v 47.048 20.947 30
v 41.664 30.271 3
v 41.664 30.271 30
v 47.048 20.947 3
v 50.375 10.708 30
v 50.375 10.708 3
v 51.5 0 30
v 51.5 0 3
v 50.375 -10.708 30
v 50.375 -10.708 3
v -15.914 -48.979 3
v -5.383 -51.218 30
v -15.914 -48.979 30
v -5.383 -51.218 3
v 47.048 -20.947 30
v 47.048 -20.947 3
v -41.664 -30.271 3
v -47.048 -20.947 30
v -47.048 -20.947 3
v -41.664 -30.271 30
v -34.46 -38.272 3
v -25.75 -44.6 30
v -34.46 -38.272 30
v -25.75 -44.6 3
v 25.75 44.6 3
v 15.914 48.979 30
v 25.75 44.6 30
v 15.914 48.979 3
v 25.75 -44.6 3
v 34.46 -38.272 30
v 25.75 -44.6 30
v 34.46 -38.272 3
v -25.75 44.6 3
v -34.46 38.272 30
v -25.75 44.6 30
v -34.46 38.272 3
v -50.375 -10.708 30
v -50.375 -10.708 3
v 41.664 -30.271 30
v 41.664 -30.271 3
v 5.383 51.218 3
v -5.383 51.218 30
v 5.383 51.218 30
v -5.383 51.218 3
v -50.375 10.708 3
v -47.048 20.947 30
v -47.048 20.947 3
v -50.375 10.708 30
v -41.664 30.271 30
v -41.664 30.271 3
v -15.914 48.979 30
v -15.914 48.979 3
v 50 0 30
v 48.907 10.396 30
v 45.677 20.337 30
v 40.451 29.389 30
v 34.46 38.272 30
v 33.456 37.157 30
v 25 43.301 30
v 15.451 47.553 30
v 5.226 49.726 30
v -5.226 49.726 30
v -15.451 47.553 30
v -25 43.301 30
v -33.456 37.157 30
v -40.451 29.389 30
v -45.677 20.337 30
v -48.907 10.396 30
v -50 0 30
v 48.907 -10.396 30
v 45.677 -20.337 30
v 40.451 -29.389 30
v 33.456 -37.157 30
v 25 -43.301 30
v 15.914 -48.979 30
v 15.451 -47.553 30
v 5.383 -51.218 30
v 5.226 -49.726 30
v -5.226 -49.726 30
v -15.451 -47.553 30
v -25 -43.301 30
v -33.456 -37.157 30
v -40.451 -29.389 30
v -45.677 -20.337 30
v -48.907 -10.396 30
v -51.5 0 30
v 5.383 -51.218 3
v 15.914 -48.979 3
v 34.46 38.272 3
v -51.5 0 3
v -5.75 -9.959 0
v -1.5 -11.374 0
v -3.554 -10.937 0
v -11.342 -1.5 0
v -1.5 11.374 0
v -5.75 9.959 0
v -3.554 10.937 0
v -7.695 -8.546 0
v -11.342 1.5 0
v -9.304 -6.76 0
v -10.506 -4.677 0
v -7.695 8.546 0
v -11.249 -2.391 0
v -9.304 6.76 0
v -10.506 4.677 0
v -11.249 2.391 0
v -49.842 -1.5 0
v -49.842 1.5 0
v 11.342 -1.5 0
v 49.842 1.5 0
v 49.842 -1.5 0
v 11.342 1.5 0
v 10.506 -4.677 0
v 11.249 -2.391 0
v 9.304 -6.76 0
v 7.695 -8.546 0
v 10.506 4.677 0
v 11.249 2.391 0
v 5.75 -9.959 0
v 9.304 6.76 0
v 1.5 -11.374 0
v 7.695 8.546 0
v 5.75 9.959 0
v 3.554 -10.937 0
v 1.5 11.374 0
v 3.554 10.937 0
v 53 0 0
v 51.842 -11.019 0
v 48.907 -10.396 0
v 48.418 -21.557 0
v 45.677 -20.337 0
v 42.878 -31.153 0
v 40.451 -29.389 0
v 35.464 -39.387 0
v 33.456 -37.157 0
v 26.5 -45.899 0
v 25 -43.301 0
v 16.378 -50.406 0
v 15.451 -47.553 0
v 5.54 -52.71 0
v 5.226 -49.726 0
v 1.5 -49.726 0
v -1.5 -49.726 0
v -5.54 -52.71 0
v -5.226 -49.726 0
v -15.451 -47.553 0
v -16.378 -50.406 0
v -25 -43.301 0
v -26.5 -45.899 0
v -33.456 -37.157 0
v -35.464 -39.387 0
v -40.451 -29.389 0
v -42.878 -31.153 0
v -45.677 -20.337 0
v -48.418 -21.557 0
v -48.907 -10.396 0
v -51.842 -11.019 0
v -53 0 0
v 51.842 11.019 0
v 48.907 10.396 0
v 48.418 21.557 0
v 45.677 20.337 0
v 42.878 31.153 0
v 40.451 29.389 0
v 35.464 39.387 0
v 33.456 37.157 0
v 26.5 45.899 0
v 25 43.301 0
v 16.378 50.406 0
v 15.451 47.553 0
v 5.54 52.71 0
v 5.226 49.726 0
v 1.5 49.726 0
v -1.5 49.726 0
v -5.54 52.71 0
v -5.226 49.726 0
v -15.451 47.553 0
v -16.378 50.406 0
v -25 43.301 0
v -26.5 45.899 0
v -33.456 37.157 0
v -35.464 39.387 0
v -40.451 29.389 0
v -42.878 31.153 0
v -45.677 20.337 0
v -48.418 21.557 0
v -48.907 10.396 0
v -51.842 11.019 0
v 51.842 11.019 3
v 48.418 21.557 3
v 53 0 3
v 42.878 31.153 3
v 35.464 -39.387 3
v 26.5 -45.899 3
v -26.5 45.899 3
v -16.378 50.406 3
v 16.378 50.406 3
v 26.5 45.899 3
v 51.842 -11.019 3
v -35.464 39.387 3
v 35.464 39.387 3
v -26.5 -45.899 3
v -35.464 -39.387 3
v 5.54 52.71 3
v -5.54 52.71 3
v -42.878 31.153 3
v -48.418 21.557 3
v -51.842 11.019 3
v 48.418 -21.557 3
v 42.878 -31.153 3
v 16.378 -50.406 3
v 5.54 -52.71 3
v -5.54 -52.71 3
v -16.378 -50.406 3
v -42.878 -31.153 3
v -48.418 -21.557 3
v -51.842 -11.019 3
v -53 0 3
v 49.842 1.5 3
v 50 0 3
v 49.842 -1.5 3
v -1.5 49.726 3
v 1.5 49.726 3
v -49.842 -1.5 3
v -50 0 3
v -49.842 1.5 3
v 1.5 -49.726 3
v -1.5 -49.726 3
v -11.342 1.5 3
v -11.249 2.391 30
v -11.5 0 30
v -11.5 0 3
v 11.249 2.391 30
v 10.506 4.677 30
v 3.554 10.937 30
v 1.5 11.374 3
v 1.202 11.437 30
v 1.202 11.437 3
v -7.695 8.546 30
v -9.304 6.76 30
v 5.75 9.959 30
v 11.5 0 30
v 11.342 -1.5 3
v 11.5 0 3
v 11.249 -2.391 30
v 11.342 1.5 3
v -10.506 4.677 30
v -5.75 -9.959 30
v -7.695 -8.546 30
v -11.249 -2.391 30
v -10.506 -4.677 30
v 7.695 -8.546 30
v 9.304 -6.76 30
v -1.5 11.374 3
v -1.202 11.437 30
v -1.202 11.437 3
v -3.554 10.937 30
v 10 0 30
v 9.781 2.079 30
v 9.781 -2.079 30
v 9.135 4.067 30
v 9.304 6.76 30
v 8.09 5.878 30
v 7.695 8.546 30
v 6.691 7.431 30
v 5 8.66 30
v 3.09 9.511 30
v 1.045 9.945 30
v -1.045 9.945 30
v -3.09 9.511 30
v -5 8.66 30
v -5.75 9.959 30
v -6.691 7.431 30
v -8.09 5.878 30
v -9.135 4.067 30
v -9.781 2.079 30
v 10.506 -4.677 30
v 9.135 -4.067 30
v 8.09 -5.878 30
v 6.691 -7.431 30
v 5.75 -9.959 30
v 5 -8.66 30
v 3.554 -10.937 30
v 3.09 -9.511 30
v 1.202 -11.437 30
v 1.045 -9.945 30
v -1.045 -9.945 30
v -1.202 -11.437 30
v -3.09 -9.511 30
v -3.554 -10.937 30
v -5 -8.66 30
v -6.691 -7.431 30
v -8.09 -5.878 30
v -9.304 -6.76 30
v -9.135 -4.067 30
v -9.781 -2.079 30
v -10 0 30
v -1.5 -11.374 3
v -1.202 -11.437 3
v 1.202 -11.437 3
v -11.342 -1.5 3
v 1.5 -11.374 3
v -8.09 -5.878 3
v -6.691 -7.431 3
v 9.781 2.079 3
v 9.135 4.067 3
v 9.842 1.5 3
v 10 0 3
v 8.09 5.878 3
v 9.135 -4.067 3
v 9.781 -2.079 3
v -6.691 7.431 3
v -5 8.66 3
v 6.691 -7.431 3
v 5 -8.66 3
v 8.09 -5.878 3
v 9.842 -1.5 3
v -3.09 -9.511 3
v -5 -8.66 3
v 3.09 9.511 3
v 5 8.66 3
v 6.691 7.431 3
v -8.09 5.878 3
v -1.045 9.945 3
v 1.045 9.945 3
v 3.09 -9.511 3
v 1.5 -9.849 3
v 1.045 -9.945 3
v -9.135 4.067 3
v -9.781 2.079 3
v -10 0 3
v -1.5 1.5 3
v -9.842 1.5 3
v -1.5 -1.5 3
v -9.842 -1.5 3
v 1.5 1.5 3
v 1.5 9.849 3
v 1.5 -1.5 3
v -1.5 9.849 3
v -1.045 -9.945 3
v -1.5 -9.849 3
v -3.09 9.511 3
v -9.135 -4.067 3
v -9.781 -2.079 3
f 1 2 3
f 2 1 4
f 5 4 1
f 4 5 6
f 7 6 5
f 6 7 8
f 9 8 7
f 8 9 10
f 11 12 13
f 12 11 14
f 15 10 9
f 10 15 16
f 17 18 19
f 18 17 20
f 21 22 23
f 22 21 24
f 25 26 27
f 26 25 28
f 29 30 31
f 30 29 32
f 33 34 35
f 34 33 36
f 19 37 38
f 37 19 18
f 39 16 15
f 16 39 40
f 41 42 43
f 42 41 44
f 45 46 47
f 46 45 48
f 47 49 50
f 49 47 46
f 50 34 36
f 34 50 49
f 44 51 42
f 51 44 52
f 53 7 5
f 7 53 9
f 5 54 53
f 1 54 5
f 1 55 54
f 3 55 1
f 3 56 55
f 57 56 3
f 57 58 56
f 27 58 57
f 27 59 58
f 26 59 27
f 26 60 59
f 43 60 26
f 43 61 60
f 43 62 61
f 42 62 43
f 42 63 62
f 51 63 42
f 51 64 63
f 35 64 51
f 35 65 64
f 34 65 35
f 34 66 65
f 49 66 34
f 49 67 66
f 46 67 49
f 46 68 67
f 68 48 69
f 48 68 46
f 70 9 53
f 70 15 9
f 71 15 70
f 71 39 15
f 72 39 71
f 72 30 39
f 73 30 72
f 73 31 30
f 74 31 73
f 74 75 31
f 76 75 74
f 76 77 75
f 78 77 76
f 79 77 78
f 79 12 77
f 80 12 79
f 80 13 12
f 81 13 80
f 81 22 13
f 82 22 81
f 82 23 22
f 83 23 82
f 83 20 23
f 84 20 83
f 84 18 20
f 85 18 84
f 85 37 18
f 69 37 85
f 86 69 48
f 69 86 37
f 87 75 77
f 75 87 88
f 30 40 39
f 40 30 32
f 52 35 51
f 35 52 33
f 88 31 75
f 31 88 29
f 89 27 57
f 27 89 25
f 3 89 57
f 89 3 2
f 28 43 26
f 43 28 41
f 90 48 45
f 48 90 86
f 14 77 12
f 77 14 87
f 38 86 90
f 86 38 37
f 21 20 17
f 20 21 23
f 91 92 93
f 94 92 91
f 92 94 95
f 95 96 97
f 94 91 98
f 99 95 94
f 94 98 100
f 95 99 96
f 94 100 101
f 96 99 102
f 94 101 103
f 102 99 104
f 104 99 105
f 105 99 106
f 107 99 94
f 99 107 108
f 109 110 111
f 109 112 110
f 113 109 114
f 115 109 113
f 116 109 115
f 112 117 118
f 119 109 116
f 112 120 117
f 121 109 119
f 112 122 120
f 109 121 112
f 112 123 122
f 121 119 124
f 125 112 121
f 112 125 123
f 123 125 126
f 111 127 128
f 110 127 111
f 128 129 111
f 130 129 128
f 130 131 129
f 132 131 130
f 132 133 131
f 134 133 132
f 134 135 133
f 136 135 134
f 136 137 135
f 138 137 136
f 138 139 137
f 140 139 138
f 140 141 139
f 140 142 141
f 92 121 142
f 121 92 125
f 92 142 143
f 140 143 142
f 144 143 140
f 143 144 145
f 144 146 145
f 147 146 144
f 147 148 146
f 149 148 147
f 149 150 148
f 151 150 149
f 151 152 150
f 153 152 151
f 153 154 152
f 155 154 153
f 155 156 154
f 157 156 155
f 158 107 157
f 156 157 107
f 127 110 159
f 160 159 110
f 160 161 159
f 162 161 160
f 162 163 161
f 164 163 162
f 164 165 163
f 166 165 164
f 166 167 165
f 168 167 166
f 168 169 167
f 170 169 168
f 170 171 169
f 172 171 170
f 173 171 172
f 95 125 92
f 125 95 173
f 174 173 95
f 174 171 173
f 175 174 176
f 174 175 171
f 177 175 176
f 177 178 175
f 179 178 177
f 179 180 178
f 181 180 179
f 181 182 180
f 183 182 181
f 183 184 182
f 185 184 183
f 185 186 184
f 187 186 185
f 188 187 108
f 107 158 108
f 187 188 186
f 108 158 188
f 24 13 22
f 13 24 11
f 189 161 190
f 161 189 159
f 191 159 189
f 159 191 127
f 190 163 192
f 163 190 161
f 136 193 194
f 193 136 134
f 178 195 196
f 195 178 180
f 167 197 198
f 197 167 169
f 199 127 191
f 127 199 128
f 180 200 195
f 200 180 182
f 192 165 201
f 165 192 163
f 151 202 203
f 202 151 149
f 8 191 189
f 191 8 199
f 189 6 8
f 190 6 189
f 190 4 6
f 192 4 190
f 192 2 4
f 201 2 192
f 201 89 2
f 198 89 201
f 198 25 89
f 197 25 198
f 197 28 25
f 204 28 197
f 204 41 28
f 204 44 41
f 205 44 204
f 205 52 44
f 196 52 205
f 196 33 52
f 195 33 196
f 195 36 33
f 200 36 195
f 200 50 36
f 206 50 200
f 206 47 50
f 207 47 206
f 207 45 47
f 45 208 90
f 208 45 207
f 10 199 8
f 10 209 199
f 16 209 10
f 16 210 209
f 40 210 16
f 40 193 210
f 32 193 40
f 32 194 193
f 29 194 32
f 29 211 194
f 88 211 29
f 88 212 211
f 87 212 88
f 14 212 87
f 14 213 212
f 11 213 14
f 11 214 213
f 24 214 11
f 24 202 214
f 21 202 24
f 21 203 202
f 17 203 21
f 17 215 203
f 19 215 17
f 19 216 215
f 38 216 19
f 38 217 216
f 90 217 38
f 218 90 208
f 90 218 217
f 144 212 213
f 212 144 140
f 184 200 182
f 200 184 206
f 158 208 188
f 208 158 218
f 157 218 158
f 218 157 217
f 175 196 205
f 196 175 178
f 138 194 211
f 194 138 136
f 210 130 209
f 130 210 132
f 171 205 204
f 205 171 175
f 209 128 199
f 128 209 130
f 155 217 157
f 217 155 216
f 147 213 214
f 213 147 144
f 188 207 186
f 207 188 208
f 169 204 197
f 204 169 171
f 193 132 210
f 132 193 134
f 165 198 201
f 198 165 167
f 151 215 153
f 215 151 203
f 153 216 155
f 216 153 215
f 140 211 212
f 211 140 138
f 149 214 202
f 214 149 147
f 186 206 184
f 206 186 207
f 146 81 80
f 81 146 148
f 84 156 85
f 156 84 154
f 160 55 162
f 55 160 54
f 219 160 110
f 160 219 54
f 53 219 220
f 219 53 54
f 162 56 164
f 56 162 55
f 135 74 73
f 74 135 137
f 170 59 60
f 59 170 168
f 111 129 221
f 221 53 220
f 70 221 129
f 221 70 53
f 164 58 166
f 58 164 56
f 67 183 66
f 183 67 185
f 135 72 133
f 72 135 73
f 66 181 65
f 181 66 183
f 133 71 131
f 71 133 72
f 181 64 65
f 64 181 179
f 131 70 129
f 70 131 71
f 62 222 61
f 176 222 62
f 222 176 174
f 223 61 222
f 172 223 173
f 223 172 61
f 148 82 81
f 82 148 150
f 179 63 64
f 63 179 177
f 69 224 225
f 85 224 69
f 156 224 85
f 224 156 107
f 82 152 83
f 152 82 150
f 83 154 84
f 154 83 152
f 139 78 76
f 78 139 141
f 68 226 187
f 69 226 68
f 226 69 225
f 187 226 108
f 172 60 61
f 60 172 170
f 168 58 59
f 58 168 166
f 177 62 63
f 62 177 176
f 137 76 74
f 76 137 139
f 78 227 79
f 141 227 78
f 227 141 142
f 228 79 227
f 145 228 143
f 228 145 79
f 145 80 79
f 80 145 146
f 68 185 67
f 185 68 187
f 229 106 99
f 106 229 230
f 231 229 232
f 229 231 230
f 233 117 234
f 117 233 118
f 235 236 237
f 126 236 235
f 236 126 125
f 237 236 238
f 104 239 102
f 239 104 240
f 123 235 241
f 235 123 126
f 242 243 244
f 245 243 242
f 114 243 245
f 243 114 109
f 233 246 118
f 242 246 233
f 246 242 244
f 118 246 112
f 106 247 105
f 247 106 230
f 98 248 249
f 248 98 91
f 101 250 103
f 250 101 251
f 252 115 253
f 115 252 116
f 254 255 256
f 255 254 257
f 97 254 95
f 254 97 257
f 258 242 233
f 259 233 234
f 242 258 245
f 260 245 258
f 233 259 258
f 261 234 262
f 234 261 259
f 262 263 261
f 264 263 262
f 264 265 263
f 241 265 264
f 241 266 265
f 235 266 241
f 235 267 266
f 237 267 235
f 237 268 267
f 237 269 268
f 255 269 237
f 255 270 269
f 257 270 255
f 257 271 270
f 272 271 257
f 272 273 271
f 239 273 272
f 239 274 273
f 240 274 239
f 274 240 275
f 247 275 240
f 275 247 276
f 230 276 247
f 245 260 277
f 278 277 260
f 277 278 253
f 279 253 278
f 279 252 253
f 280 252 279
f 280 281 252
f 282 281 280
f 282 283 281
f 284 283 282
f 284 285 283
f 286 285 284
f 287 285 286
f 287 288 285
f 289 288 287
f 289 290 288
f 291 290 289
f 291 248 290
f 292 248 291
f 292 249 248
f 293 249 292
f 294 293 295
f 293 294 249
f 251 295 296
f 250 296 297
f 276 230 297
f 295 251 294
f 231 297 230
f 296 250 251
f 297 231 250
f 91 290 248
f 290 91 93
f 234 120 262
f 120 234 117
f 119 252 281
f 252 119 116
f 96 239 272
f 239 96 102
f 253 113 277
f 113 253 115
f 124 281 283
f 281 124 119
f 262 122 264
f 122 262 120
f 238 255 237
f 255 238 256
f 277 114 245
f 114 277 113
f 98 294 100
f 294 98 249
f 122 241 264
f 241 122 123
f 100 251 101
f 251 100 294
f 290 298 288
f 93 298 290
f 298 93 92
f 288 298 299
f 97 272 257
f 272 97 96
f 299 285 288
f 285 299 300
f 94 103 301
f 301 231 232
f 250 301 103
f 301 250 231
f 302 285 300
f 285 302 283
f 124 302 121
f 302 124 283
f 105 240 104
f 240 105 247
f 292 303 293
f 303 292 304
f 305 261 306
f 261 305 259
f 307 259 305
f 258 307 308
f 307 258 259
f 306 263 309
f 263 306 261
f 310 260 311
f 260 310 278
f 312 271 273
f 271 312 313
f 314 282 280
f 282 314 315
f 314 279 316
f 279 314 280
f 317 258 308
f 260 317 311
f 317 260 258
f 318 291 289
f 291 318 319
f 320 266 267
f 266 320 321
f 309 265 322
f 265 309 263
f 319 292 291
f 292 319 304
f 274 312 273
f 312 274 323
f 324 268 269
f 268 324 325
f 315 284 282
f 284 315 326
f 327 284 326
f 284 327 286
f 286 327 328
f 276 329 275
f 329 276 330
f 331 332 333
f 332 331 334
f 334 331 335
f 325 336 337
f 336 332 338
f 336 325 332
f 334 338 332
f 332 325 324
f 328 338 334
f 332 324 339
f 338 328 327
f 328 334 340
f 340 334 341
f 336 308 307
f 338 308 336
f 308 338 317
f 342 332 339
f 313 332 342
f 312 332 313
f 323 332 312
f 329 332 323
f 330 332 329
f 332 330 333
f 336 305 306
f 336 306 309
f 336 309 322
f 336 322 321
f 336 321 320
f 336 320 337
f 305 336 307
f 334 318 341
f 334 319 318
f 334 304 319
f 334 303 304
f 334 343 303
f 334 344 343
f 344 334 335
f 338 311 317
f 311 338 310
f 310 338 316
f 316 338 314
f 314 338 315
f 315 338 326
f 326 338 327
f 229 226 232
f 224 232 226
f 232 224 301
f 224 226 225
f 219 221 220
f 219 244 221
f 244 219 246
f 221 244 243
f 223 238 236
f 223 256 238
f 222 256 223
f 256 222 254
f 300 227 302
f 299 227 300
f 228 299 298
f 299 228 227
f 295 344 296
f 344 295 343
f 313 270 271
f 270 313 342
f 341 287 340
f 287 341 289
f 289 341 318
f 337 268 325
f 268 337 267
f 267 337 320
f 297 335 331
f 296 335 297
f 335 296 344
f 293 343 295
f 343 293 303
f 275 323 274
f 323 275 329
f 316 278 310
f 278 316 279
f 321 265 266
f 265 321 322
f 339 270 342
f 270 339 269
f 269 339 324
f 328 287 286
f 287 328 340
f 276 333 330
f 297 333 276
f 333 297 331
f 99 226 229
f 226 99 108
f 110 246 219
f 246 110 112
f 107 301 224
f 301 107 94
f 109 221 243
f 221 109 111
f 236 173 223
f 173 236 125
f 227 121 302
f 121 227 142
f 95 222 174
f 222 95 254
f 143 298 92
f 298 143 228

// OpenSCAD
//dimensions
diameter1  = 100;
diameter2  =  20;
wall       =   3;
height     =  30;

module outer_circle() {
    difference() {
        union() {
            cylinder( d = diameter1+wall, h = height );
            cylinder( d = diameter1+2*wall, h = wall );
        }
        translate( [0, 0, -1] )
            cylinder( d = diameter1, h = height+2 );
    }
}

module inner_circle() {
    difference() {
        cylinder( d = diameter2+wall, h = height );
        translate( [0, 0, wall] )
            cylinder( d = diameter2, h = height+2 );
    }
}

module anchor() {
    translate( [ (-1/2)*diameter1, (-1/2)*wall, 0 ] )
        cube( [ diameter1, wall, wall ] );
    translate( [ (-1/2)*wall, (-1/2)*diameter1, 0 ] )
        cube( [ wall, diameter1, wall ] );
}

outer_circle();
inner_circle();
anchor();
